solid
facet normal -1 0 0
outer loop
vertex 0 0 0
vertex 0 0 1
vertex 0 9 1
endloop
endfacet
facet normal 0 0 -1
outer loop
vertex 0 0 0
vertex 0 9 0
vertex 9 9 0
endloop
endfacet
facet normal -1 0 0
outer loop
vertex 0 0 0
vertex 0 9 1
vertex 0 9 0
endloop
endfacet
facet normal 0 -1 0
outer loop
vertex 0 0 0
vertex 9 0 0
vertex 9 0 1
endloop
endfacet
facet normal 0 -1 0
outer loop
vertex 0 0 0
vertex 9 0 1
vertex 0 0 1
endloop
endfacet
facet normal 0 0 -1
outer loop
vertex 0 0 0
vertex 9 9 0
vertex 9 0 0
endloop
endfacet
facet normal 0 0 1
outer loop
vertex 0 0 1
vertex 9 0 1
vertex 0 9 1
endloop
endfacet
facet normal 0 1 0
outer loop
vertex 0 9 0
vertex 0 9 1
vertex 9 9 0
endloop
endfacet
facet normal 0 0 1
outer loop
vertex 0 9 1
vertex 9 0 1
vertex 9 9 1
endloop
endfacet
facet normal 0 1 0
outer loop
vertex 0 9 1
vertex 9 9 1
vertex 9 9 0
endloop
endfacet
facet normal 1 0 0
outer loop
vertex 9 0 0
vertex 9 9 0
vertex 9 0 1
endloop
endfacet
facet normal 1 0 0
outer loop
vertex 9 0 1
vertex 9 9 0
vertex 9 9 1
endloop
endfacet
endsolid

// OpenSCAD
/* Warning, this is a very basic generator with a lot of approximation 
input data : [VQFN, MGC, 9x9x1mm, 64, , B, C04-25413B]
generated by com.zoubworld.electronics.cad.model3d.Basic
Date : Sun Feb 15 10:50:49 CET 2026
*/

//body
color("black")
translate([0,0,0])
cube([9.0,9.0,1.0], center=false);
